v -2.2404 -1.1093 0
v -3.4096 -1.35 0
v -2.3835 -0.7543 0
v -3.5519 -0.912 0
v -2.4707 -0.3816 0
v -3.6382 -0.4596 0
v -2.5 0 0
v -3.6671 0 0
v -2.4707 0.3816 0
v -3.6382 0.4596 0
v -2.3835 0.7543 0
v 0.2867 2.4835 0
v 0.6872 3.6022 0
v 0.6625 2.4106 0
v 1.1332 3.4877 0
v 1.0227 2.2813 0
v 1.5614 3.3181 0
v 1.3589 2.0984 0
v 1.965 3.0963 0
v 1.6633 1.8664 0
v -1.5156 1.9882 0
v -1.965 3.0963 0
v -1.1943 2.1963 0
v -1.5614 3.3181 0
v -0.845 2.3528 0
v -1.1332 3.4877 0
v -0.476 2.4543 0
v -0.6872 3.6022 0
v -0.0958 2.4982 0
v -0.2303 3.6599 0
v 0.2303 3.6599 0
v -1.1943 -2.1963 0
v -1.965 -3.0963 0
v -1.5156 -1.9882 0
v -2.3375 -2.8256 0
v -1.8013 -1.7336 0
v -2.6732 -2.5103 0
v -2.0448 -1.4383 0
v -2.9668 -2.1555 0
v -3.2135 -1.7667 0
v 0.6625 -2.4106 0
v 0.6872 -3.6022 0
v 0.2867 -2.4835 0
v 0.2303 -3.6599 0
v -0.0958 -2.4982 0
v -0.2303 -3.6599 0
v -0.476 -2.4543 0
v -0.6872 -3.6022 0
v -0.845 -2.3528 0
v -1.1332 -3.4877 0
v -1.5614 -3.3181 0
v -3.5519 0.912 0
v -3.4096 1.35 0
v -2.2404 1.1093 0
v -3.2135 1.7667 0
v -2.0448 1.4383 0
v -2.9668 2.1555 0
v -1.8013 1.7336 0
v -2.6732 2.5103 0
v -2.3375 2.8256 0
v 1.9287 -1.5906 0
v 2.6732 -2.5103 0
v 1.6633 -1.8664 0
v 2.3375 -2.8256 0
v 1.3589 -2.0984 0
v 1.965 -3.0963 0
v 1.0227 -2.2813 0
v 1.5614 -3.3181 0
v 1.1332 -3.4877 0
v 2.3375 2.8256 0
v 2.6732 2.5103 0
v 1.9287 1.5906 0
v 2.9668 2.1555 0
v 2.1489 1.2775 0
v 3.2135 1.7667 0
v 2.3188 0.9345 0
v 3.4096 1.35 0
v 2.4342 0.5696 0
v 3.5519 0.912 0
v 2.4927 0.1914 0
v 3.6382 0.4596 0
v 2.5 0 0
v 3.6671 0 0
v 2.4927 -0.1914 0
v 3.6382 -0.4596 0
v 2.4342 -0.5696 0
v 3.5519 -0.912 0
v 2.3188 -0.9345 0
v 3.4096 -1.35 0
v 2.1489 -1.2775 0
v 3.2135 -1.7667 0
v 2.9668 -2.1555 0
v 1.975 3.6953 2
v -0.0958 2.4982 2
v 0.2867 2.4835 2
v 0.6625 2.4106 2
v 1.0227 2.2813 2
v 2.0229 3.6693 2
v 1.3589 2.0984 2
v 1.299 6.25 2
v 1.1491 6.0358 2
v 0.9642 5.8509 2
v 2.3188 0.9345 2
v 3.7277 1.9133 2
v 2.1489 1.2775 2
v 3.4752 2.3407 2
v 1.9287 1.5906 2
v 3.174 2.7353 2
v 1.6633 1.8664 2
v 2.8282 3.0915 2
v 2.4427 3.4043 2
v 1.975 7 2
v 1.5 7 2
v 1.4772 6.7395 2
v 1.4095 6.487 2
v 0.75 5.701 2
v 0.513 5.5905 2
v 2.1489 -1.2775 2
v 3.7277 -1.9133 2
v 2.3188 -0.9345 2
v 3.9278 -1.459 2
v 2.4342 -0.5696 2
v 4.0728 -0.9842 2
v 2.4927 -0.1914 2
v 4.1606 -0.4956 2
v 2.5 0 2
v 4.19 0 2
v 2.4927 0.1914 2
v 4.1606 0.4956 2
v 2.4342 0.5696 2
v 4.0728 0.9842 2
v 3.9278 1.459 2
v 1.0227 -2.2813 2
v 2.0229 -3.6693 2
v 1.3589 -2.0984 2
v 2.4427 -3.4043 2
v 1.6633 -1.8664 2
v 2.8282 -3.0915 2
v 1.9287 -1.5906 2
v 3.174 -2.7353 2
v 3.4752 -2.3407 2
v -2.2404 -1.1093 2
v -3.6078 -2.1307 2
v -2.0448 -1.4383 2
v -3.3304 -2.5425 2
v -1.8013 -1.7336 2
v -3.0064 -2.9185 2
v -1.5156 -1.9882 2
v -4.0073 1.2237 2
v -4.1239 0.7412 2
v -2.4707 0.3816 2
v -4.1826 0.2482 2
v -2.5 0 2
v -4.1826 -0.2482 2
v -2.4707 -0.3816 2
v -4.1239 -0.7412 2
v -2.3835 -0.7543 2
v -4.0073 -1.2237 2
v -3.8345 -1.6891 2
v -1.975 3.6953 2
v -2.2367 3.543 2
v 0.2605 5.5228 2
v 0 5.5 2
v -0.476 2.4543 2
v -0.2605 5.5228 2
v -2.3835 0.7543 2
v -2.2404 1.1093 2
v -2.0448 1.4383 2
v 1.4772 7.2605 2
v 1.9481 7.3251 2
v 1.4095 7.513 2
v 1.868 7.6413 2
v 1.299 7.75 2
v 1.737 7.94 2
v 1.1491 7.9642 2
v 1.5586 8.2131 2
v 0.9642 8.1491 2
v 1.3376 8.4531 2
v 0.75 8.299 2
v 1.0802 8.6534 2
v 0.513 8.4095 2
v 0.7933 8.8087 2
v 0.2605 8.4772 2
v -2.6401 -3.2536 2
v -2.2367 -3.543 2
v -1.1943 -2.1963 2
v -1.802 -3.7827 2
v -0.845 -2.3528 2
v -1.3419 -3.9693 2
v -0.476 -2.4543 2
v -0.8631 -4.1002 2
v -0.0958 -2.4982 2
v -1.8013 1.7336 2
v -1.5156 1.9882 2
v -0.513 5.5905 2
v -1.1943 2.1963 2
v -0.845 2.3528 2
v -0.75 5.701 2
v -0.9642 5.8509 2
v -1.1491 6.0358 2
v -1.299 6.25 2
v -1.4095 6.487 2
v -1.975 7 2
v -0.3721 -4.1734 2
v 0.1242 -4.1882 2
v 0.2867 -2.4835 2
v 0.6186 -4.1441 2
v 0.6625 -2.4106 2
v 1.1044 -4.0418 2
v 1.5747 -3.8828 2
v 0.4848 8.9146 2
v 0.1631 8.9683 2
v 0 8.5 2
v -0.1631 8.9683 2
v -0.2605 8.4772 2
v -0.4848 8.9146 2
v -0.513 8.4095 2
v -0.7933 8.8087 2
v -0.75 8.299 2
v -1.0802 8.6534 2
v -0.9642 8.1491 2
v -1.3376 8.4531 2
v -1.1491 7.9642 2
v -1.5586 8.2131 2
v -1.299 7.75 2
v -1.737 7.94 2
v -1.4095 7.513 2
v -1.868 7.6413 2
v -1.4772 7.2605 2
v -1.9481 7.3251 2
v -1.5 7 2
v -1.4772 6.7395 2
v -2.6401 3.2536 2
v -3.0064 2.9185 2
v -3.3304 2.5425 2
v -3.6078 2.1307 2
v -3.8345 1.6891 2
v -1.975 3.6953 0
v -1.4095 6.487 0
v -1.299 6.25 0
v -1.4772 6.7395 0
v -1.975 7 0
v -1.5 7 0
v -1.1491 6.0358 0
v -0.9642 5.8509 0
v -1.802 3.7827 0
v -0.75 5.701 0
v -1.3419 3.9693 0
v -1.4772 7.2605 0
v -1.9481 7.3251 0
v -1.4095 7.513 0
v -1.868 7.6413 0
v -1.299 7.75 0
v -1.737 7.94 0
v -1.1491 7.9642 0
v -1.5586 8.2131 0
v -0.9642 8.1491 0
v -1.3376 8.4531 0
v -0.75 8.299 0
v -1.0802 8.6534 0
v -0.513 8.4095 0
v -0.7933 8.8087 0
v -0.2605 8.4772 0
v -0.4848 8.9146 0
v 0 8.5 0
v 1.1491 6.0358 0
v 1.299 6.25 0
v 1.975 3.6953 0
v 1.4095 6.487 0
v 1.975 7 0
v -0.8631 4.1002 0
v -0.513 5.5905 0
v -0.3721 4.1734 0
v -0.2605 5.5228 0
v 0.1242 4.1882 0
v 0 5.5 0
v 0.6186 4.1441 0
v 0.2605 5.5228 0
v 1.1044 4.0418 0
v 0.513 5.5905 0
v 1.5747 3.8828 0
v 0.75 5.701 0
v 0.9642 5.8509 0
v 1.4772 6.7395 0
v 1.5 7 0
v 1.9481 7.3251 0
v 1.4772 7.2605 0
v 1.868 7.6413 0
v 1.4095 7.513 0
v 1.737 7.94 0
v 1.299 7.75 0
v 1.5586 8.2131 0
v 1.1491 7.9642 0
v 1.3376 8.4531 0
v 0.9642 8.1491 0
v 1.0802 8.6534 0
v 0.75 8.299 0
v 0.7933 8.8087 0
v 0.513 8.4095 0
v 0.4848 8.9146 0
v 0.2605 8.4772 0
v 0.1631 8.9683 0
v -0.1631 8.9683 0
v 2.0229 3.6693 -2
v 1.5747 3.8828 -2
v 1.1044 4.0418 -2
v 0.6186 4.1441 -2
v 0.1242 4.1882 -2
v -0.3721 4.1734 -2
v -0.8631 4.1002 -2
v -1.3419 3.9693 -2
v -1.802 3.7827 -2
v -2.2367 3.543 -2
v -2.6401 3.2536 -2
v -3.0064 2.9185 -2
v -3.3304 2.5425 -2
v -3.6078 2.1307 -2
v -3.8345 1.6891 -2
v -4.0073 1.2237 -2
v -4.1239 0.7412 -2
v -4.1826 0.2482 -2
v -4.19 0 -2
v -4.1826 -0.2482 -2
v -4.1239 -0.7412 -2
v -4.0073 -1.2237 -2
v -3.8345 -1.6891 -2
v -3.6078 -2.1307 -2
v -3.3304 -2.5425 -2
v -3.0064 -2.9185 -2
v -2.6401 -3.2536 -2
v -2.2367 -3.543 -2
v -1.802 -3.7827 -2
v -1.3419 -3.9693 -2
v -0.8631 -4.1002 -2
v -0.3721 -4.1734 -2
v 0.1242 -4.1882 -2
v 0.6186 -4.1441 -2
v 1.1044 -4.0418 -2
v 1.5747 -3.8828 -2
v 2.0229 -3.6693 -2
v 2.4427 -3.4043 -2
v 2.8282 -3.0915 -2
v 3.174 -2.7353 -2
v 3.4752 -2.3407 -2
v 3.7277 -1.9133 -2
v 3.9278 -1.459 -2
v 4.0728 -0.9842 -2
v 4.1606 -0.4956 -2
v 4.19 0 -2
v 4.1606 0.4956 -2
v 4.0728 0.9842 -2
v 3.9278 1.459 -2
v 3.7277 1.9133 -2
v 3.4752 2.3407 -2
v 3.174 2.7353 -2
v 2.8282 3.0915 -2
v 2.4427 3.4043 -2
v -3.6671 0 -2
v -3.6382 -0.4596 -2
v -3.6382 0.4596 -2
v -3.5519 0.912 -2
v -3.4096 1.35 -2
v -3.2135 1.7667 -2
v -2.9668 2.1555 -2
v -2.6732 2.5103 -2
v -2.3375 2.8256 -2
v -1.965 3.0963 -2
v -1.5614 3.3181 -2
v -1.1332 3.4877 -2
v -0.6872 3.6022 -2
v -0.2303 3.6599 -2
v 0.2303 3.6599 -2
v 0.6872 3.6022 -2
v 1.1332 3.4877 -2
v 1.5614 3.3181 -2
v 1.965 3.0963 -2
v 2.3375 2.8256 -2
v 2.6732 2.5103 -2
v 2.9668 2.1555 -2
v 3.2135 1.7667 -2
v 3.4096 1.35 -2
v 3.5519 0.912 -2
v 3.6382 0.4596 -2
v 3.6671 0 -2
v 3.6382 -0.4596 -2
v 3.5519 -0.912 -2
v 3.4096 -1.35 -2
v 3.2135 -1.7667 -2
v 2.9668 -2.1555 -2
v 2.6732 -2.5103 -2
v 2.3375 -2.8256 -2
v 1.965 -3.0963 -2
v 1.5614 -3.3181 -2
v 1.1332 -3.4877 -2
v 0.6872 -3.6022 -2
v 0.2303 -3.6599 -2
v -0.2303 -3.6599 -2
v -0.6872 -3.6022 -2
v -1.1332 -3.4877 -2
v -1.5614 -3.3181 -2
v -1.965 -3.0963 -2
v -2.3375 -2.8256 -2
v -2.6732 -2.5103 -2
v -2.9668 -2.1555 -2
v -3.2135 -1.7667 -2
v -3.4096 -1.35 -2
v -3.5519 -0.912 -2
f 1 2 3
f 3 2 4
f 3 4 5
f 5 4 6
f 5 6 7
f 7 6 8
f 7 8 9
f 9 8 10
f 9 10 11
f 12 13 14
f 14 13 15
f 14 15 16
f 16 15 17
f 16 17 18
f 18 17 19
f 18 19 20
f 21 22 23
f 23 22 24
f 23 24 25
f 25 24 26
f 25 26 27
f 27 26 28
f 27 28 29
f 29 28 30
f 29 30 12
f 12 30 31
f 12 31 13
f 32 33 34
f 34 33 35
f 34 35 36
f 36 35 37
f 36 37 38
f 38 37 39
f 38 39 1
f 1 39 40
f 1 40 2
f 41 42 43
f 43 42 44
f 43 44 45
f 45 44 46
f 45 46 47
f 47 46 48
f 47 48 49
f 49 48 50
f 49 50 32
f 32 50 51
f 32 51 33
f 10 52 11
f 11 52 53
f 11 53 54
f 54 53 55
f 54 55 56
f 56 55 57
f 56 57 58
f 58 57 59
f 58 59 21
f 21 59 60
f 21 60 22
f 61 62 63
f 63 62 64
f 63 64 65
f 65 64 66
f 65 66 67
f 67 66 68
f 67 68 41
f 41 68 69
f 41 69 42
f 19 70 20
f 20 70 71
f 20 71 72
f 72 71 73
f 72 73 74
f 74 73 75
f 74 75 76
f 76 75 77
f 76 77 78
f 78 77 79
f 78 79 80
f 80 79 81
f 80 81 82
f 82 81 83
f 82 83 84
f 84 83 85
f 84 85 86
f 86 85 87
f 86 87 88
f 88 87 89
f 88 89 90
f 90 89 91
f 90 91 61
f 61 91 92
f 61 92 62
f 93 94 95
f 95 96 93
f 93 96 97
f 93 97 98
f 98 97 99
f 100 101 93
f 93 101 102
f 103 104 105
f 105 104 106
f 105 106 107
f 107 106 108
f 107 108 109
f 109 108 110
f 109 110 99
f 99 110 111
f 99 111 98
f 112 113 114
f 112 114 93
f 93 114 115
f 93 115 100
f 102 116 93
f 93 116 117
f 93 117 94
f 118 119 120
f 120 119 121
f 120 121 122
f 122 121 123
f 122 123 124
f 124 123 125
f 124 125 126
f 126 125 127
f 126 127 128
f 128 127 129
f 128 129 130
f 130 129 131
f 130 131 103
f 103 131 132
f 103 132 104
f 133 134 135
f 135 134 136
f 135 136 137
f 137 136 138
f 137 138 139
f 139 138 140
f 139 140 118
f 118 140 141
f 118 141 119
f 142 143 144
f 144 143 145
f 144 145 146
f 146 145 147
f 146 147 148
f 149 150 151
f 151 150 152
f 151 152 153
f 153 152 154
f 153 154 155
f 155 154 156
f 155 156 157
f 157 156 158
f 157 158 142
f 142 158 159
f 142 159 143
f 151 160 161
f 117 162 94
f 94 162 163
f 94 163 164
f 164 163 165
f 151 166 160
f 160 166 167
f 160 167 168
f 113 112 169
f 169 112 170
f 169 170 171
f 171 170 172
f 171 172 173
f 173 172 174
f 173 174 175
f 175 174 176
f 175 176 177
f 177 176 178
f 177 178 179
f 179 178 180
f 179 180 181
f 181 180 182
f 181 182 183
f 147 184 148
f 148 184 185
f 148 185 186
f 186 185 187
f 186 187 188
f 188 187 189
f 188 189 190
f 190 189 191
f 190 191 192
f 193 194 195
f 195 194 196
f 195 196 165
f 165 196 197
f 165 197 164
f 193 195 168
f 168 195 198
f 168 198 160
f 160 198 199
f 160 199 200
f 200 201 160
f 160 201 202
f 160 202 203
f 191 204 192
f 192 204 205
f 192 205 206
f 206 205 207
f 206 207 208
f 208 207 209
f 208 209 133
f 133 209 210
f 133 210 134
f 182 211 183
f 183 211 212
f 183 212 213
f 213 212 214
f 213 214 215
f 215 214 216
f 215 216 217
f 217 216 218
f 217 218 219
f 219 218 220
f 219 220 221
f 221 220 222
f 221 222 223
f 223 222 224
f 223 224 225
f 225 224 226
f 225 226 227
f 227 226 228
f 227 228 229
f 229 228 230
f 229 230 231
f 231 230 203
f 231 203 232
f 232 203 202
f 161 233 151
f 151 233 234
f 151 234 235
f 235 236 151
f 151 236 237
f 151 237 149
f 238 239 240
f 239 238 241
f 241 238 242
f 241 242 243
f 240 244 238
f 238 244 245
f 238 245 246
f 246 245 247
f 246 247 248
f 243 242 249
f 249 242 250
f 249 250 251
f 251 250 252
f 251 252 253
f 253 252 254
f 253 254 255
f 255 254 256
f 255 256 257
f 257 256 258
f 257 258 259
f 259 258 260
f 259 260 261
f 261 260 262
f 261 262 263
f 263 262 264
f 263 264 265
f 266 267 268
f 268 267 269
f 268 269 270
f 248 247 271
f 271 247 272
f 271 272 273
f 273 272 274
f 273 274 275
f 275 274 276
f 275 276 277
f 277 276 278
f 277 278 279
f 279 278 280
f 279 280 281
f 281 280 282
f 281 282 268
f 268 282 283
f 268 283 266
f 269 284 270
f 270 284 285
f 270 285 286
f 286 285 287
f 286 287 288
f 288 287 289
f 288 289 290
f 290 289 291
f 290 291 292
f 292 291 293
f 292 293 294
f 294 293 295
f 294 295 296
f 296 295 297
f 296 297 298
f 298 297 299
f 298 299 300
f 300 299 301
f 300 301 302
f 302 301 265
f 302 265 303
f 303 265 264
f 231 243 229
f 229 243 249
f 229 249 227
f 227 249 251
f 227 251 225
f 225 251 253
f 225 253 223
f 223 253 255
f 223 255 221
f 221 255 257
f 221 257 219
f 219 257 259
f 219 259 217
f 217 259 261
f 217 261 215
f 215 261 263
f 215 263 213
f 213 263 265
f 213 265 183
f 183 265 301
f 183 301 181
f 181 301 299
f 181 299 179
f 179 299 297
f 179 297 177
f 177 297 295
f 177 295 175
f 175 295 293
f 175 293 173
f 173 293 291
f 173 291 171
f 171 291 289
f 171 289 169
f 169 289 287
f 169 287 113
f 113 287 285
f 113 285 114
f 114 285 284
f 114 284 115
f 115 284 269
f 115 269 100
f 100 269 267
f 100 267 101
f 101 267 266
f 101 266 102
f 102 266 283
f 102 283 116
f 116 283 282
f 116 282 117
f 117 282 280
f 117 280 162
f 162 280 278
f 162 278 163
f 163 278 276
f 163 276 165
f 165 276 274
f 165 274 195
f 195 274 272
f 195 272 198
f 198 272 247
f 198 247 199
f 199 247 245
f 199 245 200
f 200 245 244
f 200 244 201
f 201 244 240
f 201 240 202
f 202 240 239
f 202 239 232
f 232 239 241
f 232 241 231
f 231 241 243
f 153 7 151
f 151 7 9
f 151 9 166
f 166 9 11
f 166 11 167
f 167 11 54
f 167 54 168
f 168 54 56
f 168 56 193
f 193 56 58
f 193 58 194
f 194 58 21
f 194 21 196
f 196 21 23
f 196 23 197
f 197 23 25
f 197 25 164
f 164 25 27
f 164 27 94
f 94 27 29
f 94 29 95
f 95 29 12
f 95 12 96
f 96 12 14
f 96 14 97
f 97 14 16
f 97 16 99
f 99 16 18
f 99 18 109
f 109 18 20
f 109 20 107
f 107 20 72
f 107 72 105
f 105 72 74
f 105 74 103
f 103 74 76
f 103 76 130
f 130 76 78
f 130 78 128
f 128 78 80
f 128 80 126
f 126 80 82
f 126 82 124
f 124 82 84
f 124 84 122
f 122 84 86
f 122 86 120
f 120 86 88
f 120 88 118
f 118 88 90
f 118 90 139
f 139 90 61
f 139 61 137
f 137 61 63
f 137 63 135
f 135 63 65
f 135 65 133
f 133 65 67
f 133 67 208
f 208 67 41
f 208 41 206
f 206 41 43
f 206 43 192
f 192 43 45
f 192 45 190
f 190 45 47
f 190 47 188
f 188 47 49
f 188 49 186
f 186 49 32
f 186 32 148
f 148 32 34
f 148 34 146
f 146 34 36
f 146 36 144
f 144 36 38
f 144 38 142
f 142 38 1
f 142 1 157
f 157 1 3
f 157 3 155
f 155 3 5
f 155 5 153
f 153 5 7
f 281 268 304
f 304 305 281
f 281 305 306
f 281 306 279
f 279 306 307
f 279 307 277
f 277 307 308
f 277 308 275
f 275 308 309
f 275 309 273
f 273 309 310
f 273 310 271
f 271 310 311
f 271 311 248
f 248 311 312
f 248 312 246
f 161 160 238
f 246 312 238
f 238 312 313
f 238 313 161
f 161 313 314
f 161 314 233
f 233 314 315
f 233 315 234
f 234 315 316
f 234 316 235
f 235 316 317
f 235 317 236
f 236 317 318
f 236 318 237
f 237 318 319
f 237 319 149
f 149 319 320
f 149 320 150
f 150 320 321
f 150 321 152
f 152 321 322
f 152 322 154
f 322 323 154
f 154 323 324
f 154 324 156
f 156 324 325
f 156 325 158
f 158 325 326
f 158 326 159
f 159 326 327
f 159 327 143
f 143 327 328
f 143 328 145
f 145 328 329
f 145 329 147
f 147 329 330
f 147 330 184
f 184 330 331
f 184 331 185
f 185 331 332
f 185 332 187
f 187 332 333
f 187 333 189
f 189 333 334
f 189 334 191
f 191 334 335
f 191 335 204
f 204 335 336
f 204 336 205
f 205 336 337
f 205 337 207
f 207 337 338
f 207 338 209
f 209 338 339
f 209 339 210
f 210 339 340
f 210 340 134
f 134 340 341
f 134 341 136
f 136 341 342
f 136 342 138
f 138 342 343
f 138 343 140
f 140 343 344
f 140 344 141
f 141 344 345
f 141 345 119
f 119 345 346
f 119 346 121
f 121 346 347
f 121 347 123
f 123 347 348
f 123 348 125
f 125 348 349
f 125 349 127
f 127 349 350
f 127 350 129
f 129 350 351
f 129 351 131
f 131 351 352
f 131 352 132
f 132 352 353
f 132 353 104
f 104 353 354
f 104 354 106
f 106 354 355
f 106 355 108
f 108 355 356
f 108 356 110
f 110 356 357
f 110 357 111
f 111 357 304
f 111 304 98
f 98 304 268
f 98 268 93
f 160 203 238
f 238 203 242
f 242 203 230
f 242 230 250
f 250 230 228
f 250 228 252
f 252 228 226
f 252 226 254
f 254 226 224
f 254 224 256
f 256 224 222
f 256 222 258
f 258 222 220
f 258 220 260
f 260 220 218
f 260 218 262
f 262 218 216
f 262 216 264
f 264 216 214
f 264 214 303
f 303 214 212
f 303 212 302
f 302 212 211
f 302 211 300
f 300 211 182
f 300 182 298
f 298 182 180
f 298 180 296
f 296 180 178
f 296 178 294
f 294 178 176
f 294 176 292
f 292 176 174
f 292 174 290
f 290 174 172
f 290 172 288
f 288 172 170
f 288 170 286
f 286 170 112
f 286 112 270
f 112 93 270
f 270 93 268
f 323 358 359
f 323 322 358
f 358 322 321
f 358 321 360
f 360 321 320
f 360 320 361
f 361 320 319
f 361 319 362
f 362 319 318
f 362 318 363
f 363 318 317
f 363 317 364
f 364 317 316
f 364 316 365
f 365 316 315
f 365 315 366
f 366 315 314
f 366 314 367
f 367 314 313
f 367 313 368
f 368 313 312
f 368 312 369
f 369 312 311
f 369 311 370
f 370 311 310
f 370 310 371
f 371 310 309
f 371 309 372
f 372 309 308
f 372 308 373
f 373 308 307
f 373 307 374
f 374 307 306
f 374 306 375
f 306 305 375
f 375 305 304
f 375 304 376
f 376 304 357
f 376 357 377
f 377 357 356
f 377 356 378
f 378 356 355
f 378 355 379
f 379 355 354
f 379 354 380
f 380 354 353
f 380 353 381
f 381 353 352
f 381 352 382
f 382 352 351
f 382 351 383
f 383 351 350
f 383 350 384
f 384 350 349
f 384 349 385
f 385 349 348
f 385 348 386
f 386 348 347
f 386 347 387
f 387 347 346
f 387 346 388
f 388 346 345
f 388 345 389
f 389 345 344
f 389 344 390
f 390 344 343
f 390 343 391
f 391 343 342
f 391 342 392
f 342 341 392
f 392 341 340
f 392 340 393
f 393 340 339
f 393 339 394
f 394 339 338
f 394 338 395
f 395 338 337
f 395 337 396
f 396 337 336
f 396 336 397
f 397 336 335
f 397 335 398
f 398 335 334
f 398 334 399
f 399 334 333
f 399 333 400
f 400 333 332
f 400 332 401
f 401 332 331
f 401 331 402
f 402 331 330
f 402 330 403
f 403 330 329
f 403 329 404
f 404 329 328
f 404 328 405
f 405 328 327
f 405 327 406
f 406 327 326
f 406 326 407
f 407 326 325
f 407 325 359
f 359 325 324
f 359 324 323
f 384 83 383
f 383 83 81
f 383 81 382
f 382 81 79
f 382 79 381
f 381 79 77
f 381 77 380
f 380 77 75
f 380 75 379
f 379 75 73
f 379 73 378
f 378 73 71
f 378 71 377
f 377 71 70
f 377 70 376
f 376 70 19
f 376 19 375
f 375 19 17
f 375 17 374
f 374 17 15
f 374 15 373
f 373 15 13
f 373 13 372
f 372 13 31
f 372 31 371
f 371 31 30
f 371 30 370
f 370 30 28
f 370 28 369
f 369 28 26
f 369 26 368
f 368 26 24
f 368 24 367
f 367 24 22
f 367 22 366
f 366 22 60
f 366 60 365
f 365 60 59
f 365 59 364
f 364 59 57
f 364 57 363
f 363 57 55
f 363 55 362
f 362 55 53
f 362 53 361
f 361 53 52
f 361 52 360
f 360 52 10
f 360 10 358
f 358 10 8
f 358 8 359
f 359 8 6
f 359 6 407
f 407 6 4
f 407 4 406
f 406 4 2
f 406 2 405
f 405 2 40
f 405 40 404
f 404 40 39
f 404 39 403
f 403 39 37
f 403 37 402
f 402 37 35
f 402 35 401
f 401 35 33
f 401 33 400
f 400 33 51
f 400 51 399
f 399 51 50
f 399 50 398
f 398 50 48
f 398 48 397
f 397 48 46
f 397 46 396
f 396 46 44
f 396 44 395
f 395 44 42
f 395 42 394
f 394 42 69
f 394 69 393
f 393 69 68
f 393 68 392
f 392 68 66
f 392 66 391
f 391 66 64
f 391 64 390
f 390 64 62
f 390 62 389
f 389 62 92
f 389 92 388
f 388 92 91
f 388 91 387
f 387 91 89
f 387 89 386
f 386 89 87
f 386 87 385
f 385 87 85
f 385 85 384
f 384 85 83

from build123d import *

# Parameters (mm, degrees)
SKETCH1_R           = 10
SKETCH1_R_2         = 1.5000000000000004
SKETCH1_R_3         = 2.5
BOSS_EXTRUDE1_DEPTH = 2
CUT_EXTRUDE1_START  = -10
SKETCH2_R           = 10
CUT_EXTRUDE1_DEPTH  = 10
BOSS_EXTRUDE3_START = 2
SKETCH4_R           = 4.1899999999999995
SKETCH4_R_2         = 3.667149527921724
BOSS_EXTRUDE3_DEPTH = 2


with BuildPart() as part:
    # Sketch1 → Boss-Extrude1 (new body)
    with BuildSketch(Plane.XY):
        Circle(SKETCH1_R)
        with Locations((0, 7)):
            Circle(SKETCH1_R_2, mode=Mode.SUBTRACT)
        Circle(SKETCH1_R_3, mode=Mode.SUBTRACT)
    extrude(amount=BOSS_EXTRUDE1_DEPTH)

    # Sketch2 → Cut-Extrude1 (cut)
    with BuildSketch(Plane.XY.offset(2).offset(CUT_EXTRUDE1_START)):
        Circle(SKETCH2_R)
        with BuildLine():
            Line((-1.975, 7), (-1.9749999999999994, 3.6953315142216945))
            ThreePointArc((-1.9749999999999994, 3.6953315142216945), (-3.593838477171726, 2.1541645712433404), (-4.1899999999999995, 0))
            ThreePointArc((-4.1899999999999995, 0), (-7.7e-16, -4.1899999999999995), (4.189999999999998, 3.47e-15))
            ThreePointArc((4.189999999999998, 3.47e-15), (3.5938384771717247, 2.1541645712433426), (1.9749999999999959, 3.6953315142216963))
            Line((1.9749999999999959, 3.6953315142216963), (1.974999999999994, 7.000000000000001))
            ThreePointArc((1.974999999999994, 7.000000000000001), (-3.2e-16, 8.974999999999994), (-1.975, 7))
        make_face(mode=Mode.SUBTRACT)
    extrude(amount=CUT_EXTRUDE1_DEPTH, mode=Mode.SUBTRACT)

    # Sketch4 → Boss-Extrude3 (add)
    with BuildSketch(Plane(origin=(0, 0, 0), x_dir=(-1, 0, 0), z_dir=(0, 0, -1)).offset(BOSS_EXTRUDE3_START)):
        with Locations(Location((0, 0, 0), (0, 0, 118.122638153))):
            Circle(SKETCH4_R)
        Circle(SKETCH4_R_2, mode=Mode.SUBTRACT)
    extrude(amount=-BOSS_EXTRUDE3_DEPTH)


solid = part.part
